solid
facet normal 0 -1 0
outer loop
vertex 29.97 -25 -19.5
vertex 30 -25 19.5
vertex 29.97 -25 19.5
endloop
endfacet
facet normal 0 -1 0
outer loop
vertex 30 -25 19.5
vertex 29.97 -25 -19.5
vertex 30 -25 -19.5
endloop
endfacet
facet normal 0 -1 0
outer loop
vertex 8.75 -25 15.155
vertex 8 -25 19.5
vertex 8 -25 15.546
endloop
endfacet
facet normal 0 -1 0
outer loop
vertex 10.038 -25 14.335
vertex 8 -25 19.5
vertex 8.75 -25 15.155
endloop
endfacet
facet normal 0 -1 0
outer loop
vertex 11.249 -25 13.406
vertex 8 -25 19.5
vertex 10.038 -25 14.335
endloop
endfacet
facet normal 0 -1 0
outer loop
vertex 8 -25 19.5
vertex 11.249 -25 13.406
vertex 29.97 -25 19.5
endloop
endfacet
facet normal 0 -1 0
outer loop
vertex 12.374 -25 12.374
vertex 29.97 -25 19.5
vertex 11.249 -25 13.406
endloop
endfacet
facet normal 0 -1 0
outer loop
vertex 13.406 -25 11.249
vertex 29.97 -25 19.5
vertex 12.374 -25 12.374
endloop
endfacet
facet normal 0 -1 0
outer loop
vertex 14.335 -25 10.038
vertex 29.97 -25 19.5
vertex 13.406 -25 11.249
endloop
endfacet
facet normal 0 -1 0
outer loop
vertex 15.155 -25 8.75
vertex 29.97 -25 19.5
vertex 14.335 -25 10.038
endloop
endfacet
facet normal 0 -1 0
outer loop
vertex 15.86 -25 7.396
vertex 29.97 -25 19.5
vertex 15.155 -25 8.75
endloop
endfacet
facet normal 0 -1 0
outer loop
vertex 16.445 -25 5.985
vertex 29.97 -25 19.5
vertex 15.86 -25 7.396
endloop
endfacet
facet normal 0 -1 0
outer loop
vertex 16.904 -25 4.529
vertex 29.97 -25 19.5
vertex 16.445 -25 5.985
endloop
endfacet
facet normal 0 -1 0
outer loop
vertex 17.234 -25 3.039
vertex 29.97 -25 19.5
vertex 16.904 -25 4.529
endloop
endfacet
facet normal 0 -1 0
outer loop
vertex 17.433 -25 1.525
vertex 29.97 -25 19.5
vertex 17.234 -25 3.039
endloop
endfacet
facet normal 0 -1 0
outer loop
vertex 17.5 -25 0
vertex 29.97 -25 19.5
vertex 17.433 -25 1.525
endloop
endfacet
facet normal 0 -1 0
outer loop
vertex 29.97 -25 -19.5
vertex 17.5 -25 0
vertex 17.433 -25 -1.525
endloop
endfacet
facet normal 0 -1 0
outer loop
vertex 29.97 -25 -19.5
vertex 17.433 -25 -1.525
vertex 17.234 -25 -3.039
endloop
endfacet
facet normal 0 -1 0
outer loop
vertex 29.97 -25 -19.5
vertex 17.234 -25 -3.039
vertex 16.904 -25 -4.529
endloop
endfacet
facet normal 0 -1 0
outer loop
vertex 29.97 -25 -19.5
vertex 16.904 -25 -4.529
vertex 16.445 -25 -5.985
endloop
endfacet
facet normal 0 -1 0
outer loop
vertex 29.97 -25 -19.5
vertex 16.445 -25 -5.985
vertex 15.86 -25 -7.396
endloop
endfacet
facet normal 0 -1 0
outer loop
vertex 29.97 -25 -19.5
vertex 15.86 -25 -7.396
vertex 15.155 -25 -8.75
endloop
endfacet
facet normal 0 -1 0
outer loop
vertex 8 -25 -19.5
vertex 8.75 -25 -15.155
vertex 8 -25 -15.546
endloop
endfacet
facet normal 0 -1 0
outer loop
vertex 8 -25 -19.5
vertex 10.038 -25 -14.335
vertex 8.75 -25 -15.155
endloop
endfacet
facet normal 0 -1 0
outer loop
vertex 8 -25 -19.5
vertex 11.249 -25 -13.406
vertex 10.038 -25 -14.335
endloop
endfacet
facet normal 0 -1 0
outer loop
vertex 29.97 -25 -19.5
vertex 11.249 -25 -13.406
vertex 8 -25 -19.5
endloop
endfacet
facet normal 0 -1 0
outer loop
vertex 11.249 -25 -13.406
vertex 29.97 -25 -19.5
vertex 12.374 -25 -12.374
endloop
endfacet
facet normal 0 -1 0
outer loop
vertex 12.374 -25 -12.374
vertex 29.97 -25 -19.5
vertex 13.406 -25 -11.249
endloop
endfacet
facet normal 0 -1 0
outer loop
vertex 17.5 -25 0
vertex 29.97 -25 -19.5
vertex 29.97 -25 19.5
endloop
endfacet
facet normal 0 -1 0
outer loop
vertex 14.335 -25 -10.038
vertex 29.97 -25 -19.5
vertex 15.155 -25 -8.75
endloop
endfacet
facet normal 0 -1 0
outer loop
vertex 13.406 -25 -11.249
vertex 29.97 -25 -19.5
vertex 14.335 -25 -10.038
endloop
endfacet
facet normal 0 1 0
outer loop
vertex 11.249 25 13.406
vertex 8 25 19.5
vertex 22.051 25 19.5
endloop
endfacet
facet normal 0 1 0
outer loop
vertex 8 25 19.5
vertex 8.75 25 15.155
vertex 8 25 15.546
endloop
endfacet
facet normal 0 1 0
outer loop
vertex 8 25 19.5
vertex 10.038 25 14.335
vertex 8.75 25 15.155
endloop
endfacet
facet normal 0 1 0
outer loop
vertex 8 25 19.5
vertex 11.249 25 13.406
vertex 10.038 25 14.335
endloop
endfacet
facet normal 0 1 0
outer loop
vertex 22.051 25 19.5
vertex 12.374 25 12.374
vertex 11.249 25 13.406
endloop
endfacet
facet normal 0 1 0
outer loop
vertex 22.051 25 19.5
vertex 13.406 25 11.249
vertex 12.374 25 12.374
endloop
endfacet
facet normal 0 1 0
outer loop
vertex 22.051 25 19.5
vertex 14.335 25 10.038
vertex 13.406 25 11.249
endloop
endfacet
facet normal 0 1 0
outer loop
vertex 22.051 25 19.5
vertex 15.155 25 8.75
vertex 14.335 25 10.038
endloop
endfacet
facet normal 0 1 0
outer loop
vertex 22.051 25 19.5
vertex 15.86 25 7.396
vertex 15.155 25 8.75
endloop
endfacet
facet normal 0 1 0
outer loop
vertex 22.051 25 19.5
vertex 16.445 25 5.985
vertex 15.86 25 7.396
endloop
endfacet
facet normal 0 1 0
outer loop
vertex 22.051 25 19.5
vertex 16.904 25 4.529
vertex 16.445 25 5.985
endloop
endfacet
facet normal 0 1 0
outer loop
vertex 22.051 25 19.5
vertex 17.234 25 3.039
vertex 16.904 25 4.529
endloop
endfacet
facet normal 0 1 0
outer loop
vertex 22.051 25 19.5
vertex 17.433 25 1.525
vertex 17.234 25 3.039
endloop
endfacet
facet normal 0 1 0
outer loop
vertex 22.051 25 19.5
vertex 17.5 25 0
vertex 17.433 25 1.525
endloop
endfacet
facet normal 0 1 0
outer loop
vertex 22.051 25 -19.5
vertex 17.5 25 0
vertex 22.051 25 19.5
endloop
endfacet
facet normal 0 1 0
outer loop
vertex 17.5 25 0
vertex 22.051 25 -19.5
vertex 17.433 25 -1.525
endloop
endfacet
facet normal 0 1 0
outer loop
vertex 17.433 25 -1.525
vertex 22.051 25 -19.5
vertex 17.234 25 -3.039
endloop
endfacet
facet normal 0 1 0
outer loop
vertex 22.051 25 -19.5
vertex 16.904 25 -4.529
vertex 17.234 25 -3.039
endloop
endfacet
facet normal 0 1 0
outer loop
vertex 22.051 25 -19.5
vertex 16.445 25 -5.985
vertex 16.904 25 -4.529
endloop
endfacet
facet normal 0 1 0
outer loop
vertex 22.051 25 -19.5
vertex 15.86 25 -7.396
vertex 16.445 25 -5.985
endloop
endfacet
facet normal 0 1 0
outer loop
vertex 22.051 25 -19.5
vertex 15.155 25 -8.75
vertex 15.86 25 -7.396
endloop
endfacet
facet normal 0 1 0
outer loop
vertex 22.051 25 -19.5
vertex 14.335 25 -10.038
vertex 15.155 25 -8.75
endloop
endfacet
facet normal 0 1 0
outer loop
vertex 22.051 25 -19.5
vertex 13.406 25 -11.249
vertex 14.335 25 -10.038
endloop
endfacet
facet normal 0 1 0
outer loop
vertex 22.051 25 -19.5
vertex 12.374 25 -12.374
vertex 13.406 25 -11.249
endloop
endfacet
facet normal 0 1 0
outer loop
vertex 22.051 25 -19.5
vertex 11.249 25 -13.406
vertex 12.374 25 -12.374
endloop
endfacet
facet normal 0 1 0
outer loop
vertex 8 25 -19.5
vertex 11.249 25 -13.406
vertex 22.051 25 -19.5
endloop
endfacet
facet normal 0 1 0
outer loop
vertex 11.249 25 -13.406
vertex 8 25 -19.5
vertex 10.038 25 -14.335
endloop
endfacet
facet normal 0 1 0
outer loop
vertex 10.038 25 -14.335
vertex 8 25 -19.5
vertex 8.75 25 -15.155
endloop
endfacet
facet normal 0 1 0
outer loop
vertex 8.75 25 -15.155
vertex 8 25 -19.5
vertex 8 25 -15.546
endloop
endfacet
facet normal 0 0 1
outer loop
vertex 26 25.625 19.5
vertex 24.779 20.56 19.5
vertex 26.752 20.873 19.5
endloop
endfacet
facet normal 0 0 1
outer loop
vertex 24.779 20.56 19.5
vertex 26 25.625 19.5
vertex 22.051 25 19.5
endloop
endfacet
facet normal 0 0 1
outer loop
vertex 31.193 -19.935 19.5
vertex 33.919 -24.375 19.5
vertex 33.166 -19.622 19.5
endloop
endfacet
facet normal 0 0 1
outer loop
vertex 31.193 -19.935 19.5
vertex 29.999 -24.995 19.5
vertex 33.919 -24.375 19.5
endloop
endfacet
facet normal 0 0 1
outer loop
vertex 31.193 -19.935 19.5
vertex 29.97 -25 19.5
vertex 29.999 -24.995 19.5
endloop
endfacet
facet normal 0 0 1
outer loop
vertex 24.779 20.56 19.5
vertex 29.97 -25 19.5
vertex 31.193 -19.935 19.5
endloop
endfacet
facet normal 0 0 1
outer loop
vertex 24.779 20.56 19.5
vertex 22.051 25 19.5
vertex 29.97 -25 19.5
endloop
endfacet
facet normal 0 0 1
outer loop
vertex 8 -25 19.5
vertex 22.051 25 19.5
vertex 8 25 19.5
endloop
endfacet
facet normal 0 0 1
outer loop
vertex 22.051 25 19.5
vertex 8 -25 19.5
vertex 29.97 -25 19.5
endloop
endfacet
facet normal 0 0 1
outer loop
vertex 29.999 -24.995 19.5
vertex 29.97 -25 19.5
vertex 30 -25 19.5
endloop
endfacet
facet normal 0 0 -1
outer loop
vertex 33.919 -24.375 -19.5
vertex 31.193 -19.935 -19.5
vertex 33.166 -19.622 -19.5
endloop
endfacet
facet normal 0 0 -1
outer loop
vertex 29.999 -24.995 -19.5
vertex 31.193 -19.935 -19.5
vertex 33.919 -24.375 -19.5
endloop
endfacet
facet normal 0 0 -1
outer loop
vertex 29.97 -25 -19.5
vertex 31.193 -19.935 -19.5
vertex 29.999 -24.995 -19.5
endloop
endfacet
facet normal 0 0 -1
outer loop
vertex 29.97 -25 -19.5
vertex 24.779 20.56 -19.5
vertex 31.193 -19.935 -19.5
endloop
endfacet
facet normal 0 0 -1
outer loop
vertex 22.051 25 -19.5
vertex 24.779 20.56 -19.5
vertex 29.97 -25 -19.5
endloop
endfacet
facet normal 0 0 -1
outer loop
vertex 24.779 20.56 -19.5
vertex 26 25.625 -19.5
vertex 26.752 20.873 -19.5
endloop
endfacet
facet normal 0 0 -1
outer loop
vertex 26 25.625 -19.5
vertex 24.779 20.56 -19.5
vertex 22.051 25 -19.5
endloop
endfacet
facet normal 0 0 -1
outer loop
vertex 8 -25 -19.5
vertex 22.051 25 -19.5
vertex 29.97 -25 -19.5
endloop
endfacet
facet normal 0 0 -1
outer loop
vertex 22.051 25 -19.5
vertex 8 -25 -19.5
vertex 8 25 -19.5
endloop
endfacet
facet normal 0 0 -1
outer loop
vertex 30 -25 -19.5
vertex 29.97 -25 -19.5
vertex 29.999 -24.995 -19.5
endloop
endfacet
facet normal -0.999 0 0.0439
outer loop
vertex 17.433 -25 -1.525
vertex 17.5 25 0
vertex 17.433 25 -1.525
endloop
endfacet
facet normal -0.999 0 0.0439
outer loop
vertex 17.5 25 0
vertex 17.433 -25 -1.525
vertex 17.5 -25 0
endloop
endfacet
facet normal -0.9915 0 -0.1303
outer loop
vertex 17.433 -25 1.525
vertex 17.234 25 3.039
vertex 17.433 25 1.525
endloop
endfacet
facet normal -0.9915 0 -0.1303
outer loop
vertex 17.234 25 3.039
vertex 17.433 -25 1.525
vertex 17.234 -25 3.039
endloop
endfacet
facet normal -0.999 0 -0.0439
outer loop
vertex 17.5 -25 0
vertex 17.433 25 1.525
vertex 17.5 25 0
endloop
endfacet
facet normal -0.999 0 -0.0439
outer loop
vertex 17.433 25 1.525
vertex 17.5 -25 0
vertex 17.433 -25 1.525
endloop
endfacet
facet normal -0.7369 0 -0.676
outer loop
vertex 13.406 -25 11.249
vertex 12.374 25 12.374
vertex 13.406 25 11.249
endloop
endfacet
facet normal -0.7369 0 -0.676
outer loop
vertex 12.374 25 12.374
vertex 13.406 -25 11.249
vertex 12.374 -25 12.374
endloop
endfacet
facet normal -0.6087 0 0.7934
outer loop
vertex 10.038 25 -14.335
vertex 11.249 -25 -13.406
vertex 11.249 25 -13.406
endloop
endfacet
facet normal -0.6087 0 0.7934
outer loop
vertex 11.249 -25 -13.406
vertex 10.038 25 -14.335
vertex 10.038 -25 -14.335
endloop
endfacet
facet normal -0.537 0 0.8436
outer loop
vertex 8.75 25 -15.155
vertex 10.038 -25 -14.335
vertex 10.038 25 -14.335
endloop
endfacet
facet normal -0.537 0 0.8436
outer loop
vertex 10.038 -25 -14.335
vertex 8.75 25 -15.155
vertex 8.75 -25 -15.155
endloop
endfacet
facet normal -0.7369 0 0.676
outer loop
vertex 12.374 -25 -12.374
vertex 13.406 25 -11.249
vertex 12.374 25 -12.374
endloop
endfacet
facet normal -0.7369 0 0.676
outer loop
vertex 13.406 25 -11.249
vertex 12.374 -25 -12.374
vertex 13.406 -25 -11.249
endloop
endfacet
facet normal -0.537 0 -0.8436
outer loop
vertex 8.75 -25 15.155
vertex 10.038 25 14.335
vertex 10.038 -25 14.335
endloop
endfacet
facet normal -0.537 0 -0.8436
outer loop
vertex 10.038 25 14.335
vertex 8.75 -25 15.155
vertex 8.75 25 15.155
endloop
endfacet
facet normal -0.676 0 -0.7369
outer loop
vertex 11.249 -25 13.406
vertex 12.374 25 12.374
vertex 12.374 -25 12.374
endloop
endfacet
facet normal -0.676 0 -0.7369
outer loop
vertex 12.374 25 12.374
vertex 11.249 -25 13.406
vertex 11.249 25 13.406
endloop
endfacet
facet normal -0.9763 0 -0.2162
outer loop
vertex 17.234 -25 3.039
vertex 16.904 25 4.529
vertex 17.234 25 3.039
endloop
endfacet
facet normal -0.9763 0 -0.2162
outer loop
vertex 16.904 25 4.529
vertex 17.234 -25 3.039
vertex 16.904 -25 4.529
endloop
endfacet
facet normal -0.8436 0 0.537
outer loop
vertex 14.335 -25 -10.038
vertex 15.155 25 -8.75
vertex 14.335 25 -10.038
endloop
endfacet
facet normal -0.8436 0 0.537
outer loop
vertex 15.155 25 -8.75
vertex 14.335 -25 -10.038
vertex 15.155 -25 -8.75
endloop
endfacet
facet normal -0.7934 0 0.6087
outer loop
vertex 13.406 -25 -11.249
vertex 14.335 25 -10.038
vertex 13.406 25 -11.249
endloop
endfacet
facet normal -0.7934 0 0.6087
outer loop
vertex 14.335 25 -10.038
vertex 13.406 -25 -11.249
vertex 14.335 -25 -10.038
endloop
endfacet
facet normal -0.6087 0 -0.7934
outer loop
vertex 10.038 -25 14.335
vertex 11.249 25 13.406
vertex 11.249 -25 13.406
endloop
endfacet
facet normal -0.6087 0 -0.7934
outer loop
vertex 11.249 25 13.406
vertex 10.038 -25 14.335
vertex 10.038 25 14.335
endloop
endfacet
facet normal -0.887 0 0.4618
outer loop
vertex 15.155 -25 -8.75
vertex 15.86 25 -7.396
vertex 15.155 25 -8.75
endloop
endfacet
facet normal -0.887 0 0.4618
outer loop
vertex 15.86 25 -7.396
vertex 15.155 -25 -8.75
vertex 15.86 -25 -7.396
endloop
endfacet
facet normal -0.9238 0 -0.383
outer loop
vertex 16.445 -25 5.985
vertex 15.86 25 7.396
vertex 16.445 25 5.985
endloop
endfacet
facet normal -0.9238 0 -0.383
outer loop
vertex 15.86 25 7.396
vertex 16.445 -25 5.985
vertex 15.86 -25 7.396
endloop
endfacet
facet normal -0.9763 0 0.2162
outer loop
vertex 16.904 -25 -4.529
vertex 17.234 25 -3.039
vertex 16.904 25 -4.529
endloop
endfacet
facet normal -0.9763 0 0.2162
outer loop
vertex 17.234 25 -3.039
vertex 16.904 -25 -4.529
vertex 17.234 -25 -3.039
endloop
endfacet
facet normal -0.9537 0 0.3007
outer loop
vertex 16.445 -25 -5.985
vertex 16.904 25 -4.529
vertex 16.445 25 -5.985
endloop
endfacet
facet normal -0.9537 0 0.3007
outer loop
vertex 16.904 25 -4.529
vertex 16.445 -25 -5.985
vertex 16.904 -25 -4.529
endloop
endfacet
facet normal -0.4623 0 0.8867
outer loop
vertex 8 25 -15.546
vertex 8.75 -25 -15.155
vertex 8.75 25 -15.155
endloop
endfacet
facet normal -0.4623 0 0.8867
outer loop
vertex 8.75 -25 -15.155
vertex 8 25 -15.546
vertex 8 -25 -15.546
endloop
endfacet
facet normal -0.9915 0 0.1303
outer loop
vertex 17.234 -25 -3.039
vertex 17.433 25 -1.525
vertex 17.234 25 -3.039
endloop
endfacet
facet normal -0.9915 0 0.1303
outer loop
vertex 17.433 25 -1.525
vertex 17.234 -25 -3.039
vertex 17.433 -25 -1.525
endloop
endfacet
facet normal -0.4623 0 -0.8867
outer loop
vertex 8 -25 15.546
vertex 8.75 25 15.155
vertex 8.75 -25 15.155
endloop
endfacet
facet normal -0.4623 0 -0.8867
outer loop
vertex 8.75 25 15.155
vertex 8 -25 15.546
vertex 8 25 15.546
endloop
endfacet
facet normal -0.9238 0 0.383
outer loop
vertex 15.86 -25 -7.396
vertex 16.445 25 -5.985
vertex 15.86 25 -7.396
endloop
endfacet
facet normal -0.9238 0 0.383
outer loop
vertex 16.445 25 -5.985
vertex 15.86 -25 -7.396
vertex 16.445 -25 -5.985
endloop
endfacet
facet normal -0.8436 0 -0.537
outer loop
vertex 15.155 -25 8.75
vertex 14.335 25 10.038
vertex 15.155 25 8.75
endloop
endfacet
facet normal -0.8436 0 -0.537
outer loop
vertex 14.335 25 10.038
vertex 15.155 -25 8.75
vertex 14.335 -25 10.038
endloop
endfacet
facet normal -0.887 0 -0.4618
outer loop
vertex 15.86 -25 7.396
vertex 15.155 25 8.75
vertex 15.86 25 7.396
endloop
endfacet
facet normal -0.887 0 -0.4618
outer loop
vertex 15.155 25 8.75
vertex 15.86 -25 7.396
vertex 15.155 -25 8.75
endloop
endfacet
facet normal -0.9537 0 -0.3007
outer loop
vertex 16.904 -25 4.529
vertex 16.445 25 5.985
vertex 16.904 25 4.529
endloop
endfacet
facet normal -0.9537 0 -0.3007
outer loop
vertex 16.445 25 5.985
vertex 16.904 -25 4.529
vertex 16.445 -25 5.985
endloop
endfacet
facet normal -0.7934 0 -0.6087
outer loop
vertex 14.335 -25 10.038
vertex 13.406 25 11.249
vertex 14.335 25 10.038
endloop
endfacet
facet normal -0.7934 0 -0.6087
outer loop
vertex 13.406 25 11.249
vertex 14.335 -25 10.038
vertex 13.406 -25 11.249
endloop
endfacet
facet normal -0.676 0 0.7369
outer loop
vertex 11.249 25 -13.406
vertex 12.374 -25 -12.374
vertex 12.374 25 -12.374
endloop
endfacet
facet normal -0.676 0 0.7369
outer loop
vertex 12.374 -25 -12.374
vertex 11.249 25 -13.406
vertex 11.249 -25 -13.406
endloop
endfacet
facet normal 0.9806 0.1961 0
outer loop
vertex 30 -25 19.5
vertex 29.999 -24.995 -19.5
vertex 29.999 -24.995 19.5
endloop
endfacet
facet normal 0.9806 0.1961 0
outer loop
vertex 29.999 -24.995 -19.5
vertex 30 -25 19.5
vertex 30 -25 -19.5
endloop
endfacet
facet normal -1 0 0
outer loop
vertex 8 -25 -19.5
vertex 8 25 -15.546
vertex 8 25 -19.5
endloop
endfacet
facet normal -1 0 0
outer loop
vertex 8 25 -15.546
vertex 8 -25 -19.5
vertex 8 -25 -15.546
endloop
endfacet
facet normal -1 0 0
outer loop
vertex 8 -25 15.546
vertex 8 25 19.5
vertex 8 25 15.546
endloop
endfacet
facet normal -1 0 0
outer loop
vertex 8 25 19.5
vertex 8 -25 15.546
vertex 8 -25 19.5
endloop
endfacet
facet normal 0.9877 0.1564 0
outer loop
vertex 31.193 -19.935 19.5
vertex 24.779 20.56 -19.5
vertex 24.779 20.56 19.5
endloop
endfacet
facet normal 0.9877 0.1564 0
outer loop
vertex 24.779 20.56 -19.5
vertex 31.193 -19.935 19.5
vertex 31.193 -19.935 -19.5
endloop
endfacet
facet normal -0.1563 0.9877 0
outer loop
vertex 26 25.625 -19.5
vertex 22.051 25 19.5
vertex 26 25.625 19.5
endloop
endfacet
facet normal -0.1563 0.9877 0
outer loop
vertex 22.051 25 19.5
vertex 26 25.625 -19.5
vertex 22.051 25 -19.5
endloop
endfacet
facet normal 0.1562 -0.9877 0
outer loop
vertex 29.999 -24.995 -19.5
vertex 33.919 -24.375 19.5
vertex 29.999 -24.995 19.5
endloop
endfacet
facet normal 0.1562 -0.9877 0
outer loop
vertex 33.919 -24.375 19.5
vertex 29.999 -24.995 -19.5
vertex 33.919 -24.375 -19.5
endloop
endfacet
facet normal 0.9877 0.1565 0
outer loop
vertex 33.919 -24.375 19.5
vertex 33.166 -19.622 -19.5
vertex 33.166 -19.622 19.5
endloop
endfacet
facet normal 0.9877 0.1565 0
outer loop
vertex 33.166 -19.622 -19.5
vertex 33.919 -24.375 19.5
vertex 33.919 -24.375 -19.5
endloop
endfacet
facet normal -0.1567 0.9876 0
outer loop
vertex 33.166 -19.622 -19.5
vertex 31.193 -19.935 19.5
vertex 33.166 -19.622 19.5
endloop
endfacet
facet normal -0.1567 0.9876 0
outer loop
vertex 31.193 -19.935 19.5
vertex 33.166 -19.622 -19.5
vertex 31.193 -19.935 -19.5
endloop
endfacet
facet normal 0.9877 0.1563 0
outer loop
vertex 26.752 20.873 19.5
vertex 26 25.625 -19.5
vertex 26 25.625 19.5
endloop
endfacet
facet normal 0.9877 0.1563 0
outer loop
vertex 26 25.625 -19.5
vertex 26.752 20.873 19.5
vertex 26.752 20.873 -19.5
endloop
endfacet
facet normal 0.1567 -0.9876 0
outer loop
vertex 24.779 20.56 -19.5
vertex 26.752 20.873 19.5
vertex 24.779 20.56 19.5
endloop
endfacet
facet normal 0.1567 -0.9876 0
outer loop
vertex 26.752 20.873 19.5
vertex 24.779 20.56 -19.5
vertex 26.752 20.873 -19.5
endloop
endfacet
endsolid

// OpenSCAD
breite = 50;
innenRadius = 17.5;
aussenRadius = 19.5;
vorwaerts = 30;
winkel = 9;
wandDicke = 2;
traegerBreite = 41;
gelaenderOffset=8;
//lochRadius = 10;
//
$fa = 5;
$fs = 1;
haelfteVonBreite = 0.5 * breite;
breiteMitPuffer = 1.2 * breite;
haelfteVonBreiteMitPuffer = 0.5 * breiteMitPuffer;
zweimalAussenRadius = 2 * aussenRadius;
leerBreite = breite - 2 * wandDicke;
haelfteVonLeerBreite = 0.5 * leerBreite;
leerHoehe = 2 * aussenRadius - 2 * wandDicke;
haelfteVonLeerHoehe = 0.5 * leerHoehe;
gross = 4 * breite;
haelfteVonGross = 0.5 * gross;
abschlussBreite = breite / cos(winkel);
haelfteVonAbschlussBreite = 0.5 * abschlussBreite;
zweimalWandDicke = 2 * wandDicke;
viermalWandDicke = 4 * wandDicke;
leistenBreite = 0.5 *(abschlussBreite - traegerBreite);
//
module lamelle(vorwaerts = 20, breite = 10, dicke = 0.3) {
    translate([0, -0.5 * breite, 0])
        cube([vorwaerts, breite, dicke]);
}


module lamellenSchar(vorwaerts = 20, breite = 10, dicke = 0.3, anzahlSeitlich = 3, abstand = 2) {
    lamelle(vorwaerts = vorwaerts, breite = breite, dicke = dicke);
    for (i = [1:1:anzahlSeitlich]) {
        translate([0, 0, i * abstand])
            lamelle(vorwaerts = vorwaerts, breite = breite, dicke = dicke);
        translate([0, 0, -i * abstand])
            lamelle(vorwaerts = vorwaerts, breite = breite, dicke = dicke);
    }
}


rotate([0, 0, 0]) {
difference() {
    difference() {
        union() {
            // Konkave Wand zum Geländer
            rotate([90, 0, 0])
                cylinder(h=breite, r=aussenRadius, center=true);
            difference() {
                // Vorwaertsquader
                translate([0, -haelfteVonBreite, -aussenRadius])
                    cube([vorwaerts, breite, zweimalAussenRadius]);
//                // Vorwaertsquader soll innen leer sein
//                translate([0, -haelfteVonLeerBreite, -haelfteVonLeerHoehe])
//                    cube([vorwaerts, leerBreite, leerHoehe]);
            }
//            // Rohr um Bohrloch
//            rotate([0, 90, 0])
//                cylinder(h=vorwaerts, r=lochRadius+wandDicke);
//            // Hohlraum mit Dreieckslamellen füllen/
//            rotate([15, 0, 0]) {
//                lamellenSchar(vorwaerts = vorwaerts, breite = 1.2 * breite, anzahlSeitlich = 13);
//                rotate([120, 0, 0])
//                    lamellenSchar(vorwaerts = vorwaerts, breite = 1.5 * breite, anzahlSeitlich = 13);
//                rotate([240, 0, 0])
//                    lamellenSchar(vorwaerts = vorwaerts, breite = 1.3 * breite, anzahlSeitlich = 13);
//            }
        }
        // Zylinder ausschneiden fuer Gelaender
        rotate([90, 0, 0])
            cylinder(h=breiteMitPuffer, r=innenRadius, center=true);
    }
    union() {
        // Vorwaertquader schraeg abschneiden
        translate([vorwaerts, -haelfteVonBreite, -haelfteVonGross])
            rotate([0, 0, winkel])
                cube([gross, gross, gross]);
//        // Bohrung auf Gelaenderseite
//        translate([0, 0, 0])
//            rotate([0, 90, 0])
//                cylinder(h=vorwaerts, r=lochRadius);
        // Hohlzylinder auf Geländerseite aufschneiden
        translate([-breite + gelaenderOffset, -haelfteVonBreiteMitPuffer, -haelfteVonBreiteMitPuffer])
            cube([breite, breiteMitPuffer, breiteMitPuffer]);
        // Alles mit y>haelfteVonBreite abschneiden
        translate([-0.05 * vorwaerts, haelfteVonBreite, -haelfteVonGross])
            cube([1.1 * vorwaerts, breite, gross]);
        // Alles mit y<-haelfteVonBreite abschneiden
        translate([-0.05 * vorwaerts, -gross-haelfteVonBreite, -haelfteVonGross])
            cube([1.1 * vorwaerts, gross, gross]);
        // Alles mit z>aussenRadius abschneiden
        translate([-0.05 * vorwaerts, -haelfteVonGross, aussenRadius])
            cube([1.1 * vorwaerts, gross, gross]);
        // Alles mit z<-aussenRadius abschneiden
        translate([-0.05 * vorwaerts, -haelfteVonGross, -3 * aussenRadius])
            cube([1.1 * vorwaerts, gross, zweimalAussenRadius]);
    }
}

// Abschlussplatte
translate([0.999 * vorwaerts, -haelfteVonBreite, -aussenRadius])
    rotate([0, 0, winkel])
        difference() {
            union() {
                // Eigentliche Abschlussplatte
                cube([wandDicke, abschlussBreite, zweimalAussenRadius]);
                // Leiste auf einer Seite
                translate([0.999 * wandDicke, 0, 0])
                    cube([wandDicke, leistenBreite, zweimalAussenRadius]);
                translate([0.999 * wandDicke, abschlussBreite - leistenBreite, 0])
                    cube([wandDicke, leistenBreite, zweimalAussenRadius]);

            }
//            // Loch durch Abschlussplatte
//            translate([-zweimalWandDicke, haelfteVonAbschlussBreite, aussenRadius])
//                rotate([0, 90, 0])
//                    cylinder(h=viermalWandDicke, r=lochRadius);
        }

}
